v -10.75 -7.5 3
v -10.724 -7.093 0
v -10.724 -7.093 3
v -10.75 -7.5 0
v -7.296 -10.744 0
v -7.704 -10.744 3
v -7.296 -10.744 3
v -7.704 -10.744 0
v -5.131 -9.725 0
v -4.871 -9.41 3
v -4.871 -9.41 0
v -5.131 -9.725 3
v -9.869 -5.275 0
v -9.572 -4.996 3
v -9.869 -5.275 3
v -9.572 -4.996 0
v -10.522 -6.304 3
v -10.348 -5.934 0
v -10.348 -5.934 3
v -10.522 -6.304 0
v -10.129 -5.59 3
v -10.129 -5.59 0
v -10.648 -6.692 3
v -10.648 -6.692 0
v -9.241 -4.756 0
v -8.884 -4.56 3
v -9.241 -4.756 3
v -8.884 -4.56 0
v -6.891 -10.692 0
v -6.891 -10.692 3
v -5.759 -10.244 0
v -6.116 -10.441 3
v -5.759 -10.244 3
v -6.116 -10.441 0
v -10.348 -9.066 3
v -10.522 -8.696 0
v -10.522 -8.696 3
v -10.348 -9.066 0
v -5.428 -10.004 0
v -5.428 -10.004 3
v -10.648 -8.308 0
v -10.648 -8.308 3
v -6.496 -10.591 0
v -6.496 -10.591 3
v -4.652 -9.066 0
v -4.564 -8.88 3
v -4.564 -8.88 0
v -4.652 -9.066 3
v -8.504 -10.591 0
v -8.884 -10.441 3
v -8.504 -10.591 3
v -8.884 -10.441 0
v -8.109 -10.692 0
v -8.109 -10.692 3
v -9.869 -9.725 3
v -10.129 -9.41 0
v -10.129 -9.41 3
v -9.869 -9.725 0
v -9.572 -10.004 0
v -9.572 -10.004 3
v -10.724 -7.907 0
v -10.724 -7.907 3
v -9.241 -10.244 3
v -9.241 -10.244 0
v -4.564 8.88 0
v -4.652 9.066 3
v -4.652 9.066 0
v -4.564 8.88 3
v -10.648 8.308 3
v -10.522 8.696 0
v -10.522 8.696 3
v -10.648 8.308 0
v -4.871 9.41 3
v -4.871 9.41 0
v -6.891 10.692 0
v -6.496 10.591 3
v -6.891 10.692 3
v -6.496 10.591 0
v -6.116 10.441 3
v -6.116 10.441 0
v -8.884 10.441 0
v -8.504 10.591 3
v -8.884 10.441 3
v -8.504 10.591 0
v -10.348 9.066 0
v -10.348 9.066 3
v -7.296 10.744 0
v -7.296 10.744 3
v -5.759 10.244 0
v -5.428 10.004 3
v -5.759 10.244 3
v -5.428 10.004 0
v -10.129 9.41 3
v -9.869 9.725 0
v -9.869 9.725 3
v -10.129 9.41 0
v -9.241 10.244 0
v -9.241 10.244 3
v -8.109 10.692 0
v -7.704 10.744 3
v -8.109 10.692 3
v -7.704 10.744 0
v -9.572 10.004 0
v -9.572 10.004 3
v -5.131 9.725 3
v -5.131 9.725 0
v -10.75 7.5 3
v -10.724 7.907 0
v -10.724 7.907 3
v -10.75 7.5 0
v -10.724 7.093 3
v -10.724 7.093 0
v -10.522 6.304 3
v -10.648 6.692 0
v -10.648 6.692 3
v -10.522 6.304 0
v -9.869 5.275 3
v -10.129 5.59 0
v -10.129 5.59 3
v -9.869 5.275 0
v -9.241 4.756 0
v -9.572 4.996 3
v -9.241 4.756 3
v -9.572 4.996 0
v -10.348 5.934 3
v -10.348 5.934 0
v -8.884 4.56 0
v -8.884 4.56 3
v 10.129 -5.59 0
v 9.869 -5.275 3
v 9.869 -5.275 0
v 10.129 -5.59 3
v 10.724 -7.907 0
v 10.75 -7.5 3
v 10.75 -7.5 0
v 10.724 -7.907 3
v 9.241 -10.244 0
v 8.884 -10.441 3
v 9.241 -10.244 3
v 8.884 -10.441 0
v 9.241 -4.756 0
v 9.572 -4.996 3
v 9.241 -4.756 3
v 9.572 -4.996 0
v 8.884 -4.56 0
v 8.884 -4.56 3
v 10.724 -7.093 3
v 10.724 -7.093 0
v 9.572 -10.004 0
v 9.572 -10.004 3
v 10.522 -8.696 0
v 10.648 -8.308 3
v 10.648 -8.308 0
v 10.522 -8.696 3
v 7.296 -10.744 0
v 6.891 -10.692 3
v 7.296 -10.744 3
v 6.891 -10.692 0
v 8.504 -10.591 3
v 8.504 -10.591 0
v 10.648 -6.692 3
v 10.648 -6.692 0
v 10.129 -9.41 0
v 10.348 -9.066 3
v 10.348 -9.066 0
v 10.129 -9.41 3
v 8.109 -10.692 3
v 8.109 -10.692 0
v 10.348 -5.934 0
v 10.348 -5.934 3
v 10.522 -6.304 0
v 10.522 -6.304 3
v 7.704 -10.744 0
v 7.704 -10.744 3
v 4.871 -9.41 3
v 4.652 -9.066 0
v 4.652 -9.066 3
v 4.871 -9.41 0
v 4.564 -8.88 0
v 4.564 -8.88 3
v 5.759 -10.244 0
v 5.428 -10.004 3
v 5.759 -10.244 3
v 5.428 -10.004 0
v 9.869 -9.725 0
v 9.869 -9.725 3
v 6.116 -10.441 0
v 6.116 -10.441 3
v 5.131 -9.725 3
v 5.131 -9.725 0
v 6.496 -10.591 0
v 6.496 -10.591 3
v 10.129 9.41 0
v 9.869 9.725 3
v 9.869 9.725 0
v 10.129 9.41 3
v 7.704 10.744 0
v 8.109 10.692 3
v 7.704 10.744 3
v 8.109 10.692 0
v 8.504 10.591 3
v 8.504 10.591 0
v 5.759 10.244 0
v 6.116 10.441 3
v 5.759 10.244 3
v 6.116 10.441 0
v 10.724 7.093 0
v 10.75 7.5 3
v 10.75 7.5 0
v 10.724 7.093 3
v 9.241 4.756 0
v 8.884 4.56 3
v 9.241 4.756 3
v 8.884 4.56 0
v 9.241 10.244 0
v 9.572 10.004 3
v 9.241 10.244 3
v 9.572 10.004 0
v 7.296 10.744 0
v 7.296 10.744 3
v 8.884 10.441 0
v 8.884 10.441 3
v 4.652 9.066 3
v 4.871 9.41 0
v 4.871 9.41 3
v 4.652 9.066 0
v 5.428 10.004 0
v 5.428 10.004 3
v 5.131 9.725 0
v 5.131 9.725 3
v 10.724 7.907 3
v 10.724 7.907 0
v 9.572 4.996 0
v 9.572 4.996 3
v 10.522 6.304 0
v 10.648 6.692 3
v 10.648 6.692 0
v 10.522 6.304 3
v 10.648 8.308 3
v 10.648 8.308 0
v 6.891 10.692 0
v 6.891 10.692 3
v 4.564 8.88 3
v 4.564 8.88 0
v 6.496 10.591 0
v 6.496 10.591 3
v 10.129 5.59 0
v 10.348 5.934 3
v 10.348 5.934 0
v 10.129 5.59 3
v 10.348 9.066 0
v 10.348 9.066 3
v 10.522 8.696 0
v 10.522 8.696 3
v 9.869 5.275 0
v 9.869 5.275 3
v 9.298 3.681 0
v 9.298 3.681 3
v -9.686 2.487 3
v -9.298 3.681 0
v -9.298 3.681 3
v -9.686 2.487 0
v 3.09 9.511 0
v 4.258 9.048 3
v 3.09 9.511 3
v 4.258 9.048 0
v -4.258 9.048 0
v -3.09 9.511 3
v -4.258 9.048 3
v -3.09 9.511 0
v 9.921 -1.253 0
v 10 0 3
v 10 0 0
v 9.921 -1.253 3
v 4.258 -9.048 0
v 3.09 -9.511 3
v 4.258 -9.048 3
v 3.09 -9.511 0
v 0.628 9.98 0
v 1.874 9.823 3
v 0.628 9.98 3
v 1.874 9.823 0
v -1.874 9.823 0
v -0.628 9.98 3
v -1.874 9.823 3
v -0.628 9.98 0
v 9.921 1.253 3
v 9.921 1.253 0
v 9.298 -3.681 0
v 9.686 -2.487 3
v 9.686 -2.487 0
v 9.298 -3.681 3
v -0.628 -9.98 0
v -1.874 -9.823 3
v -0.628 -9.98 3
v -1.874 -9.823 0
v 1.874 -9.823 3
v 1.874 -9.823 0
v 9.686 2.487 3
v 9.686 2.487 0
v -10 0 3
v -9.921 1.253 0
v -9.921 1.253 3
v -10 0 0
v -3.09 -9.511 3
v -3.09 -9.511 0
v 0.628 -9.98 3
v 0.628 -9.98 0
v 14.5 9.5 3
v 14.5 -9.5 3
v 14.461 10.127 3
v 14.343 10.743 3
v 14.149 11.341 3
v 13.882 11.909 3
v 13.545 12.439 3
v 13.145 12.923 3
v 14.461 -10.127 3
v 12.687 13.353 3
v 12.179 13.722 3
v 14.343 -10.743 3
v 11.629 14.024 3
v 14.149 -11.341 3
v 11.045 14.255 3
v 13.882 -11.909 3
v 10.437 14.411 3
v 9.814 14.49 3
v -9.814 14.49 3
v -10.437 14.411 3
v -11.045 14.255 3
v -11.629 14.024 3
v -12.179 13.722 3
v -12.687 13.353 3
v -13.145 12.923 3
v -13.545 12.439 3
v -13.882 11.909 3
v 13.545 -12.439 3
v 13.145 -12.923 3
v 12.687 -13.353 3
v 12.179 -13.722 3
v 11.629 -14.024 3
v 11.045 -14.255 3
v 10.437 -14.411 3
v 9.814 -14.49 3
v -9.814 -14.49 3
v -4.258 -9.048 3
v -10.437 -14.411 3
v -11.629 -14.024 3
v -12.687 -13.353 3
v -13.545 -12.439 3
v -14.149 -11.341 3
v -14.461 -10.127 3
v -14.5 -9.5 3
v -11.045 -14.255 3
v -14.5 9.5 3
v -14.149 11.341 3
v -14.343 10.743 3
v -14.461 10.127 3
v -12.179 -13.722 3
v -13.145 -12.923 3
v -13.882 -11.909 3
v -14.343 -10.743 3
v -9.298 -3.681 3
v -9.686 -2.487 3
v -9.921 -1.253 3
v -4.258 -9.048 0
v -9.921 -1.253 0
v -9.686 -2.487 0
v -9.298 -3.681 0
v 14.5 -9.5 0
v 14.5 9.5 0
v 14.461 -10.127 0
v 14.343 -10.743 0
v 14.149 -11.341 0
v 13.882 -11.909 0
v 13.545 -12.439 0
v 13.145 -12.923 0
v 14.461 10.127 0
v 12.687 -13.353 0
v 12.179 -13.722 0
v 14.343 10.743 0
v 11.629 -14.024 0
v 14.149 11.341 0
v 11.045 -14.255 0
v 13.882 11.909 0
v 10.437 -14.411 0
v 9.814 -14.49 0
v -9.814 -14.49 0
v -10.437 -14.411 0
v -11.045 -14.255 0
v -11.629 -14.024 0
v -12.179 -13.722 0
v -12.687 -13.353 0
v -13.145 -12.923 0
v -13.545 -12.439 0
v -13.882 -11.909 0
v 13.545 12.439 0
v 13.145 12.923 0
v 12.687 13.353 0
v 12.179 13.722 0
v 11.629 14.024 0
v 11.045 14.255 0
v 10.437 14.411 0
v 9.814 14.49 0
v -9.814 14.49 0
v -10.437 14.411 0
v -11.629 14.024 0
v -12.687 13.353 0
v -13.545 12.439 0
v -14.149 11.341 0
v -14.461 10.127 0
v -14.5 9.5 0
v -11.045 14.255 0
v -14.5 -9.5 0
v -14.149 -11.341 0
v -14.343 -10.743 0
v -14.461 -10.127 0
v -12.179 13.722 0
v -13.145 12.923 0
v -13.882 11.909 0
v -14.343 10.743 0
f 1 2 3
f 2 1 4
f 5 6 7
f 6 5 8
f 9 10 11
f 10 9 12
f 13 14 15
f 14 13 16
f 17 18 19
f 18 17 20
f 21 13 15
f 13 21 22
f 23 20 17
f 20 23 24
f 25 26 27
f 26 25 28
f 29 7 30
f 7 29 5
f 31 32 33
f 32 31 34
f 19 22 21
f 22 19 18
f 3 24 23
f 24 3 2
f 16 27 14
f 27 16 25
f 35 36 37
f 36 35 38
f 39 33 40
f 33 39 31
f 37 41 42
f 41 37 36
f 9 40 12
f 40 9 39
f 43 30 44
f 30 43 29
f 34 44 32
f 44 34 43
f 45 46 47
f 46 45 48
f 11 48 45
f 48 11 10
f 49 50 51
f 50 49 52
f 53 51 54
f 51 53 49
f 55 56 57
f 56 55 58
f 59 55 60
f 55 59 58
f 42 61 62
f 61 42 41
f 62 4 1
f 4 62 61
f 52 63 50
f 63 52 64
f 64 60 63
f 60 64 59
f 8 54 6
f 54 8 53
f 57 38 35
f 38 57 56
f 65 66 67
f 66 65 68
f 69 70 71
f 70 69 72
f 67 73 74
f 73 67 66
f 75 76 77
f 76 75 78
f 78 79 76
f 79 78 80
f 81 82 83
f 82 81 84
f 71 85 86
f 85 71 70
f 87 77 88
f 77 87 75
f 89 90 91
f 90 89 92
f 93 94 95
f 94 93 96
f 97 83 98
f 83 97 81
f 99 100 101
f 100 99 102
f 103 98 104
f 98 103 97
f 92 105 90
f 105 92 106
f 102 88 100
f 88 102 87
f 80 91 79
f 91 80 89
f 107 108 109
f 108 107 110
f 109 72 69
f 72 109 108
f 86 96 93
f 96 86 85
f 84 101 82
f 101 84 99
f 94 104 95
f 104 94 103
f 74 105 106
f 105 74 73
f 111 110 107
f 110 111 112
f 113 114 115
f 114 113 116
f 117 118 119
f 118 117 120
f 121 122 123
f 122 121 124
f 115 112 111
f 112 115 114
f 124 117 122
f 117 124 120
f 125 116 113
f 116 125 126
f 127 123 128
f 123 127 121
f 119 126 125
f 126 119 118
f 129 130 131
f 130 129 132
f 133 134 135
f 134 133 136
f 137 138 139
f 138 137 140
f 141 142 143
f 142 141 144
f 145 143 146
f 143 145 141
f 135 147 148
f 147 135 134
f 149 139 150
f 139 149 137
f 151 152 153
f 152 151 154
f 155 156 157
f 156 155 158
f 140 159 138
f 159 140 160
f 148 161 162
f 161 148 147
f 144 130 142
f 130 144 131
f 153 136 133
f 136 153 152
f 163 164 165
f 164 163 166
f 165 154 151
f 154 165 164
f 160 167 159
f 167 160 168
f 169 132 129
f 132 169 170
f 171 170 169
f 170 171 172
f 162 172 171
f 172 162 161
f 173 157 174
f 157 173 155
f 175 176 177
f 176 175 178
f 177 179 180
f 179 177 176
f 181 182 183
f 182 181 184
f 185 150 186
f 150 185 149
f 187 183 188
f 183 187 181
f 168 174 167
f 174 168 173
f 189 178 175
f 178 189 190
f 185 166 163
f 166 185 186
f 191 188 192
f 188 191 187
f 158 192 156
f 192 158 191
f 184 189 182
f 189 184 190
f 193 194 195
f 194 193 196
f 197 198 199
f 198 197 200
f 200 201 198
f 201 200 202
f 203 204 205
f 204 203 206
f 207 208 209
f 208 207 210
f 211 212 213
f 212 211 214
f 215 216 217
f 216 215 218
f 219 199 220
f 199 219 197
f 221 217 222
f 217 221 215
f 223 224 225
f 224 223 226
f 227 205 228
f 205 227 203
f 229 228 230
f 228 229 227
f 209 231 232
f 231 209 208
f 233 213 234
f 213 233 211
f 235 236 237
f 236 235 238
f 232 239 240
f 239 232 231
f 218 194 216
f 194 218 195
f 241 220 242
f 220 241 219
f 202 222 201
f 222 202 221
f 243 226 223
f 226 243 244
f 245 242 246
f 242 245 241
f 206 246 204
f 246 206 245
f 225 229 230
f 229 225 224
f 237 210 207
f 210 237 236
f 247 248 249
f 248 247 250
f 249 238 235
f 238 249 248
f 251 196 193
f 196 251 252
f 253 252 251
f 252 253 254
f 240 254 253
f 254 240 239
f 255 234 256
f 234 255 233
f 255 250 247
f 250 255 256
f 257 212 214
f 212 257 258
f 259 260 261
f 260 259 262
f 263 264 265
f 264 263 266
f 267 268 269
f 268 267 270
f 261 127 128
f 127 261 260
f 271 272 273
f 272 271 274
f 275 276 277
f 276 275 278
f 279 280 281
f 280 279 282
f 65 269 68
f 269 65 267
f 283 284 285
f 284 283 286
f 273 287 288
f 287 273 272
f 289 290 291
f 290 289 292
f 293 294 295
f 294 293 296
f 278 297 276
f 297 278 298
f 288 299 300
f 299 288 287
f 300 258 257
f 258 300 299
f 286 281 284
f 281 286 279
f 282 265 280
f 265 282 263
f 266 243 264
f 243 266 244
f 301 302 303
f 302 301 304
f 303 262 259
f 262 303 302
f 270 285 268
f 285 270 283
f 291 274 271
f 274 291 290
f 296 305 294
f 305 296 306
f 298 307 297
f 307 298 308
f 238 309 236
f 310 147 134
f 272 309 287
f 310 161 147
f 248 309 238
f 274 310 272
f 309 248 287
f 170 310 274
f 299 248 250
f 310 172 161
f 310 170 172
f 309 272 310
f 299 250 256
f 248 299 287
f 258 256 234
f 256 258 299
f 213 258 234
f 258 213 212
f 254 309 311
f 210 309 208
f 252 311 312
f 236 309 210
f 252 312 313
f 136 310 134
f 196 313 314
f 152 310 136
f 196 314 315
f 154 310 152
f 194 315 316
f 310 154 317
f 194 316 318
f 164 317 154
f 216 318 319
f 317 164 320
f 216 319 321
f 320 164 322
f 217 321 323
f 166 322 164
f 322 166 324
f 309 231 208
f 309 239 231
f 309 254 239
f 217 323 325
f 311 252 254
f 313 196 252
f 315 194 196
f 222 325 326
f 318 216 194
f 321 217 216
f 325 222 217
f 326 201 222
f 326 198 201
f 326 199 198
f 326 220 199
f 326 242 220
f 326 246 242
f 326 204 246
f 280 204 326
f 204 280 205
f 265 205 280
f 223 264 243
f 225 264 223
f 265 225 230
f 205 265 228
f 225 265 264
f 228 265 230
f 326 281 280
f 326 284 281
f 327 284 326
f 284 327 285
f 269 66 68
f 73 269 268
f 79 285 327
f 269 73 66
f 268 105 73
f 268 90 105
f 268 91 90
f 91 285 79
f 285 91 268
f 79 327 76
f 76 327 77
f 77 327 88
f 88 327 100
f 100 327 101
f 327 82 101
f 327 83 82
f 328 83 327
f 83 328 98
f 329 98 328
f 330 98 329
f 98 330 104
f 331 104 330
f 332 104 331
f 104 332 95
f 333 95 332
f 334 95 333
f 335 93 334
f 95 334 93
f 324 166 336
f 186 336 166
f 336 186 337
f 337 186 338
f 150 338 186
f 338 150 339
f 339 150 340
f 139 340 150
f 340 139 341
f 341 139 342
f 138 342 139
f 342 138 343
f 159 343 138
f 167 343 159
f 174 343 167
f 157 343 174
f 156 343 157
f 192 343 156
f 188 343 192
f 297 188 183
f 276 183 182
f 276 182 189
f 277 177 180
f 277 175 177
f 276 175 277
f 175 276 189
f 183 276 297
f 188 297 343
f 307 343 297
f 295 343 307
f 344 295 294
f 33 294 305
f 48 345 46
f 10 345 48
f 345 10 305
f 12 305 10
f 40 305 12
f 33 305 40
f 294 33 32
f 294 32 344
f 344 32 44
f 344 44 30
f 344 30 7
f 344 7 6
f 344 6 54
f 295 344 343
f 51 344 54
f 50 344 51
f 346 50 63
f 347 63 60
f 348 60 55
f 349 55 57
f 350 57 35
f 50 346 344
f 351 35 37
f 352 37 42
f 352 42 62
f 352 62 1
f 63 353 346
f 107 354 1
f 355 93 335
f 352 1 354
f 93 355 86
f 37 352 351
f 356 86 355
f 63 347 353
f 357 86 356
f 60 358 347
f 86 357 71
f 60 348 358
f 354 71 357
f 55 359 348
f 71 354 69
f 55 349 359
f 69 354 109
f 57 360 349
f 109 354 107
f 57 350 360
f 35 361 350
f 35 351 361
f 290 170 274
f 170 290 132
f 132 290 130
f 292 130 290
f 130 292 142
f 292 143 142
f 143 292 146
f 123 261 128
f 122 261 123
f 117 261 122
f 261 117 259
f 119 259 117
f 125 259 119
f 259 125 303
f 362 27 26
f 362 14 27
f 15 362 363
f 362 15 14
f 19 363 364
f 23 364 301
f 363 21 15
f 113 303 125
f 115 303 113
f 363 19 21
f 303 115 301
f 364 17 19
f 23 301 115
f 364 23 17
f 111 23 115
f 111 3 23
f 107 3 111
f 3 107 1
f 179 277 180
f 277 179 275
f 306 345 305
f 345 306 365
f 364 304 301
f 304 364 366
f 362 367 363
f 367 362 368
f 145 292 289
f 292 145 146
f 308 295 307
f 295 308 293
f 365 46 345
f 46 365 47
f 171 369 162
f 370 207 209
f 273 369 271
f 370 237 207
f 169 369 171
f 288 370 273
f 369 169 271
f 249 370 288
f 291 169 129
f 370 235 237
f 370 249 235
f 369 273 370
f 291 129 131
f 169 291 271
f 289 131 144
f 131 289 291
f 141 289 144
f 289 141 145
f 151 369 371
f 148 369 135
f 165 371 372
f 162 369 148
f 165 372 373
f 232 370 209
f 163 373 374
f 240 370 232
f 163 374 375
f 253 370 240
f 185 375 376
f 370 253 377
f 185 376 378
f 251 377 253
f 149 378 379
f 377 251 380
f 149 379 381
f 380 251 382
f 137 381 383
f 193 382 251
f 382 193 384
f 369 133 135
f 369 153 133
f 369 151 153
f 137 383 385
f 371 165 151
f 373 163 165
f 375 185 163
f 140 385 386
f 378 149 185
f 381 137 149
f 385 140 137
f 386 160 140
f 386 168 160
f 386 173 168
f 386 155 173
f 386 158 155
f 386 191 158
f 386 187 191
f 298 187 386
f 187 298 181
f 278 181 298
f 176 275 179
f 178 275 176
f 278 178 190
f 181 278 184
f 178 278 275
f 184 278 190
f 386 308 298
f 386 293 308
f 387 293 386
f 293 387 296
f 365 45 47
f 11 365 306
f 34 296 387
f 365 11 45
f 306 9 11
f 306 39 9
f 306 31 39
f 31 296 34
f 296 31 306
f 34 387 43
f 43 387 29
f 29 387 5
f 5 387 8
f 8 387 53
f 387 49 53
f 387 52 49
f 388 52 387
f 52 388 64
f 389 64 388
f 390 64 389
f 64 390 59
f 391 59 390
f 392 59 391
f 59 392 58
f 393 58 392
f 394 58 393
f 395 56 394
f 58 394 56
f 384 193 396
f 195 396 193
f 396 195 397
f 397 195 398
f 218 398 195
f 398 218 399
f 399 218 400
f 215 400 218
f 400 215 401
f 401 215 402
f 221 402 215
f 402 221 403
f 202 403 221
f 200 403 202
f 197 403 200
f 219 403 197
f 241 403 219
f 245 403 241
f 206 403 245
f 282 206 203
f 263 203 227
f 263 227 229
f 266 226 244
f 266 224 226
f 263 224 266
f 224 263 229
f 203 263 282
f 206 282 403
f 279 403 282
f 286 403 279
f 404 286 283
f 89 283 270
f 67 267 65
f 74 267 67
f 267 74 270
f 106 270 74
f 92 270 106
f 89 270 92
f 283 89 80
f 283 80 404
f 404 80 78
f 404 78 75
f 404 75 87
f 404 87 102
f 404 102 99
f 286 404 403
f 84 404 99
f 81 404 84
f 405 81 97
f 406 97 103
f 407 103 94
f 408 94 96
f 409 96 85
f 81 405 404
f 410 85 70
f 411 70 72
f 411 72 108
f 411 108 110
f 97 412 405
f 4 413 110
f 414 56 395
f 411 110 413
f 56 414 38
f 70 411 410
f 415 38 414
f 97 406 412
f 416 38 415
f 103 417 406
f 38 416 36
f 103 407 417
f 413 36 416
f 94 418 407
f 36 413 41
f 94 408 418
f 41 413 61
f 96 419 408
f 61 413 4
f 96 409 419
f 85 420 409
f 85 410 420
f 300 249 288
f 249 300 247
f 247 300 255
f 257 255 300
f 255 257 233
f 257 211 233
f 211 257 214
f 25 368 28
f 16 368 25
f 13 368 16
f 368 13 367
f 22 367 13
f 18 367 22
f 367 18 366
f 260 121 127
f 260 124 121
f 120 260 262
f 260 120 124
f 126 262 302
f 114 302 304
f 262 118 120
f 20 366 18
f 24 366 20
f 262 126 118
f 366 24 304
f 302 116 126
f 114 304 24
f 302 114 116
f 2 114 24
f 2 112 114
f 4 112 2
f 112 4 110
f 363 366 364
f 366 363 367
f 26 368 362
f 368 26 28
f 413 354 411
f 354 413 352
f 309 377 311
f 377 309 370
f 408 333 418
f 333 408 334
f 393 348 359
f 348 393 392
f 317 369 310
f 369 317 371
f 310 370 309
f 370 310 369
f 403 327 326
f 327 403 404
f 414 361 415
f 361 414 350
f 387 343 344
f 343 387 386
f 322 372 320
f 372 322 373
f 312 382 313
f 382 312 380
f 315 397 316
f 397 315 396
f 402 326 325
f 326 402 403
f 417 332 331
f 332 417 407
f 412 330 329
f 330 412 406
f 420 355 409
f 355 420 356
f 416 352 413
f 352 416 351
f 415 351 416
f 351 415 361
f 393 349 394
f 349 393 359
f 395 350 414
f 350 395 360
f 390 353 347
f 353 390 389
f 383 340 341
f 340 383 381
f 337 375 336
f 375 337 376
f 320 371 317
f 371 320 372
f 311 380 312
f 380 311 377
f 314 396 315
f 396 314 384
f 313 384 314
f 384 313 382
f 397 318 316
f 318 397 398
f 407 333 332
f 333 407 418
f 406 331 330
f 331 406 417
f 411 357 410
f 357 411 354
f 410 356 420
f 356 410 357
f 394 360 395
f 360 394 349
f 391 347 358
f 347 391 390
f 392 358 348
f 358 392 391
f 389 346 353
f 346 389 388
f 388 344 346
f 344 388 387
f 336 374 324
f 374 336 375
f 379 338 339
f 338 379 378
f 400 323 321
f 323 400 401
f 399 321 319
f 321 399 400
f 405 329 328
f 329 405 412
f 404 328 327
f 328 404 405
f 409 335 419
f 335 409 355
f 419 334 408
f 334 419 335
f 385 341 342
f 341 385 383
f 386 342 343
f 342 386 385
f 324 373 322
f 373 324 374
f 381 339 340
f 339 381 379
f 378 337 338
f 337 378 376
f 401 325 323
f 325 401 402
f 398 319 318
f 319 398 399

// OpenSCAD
$fn = 50;


difference() {
	union() {
		hull() {
			translate(v = [-9.5000000000, 9.5000000000, 0]) {
				cylinder(h = 3, r = 5);
			}
			translate(v = [9.5000000000, 9.5000000000, 0]) {
				cylinder(h = 3, r = 5);
			}
			translate(v = [-9.5000000000, -9.5000000000, 0]) {
				cylinder(h = 3, r = 5);
			}
			translate(v = [9.5000000000, -9.5000000000, 0]) {
				cylinder(h = 3, r = 5);
			}
		}
	}
	union() {
		#translate(v = [-7.5000000000, -7.5000000000, -100.0000000000]) {
			cylinder(h = 200, r = 3.2500000000);
		}
		#translate(v = [-7.5000000000, 7.5000000000, -100.0000000000]) {
			cylinder(h = 200, r = 3.2500000000);
		}
		#translate(v = [7.5000000000, -7.5000000000, -100.0000000000]) {
			cylinder(h = 200, r = 3.2500000000);
		}
		#translate(v = [7.5000000000, 7.5000000000, -100.0000000000]) {
			cylinder(h = 200, r = 3.2500000000);
		}
		#cylinder(h = 3, r = 10.0000000000);
	}
}
